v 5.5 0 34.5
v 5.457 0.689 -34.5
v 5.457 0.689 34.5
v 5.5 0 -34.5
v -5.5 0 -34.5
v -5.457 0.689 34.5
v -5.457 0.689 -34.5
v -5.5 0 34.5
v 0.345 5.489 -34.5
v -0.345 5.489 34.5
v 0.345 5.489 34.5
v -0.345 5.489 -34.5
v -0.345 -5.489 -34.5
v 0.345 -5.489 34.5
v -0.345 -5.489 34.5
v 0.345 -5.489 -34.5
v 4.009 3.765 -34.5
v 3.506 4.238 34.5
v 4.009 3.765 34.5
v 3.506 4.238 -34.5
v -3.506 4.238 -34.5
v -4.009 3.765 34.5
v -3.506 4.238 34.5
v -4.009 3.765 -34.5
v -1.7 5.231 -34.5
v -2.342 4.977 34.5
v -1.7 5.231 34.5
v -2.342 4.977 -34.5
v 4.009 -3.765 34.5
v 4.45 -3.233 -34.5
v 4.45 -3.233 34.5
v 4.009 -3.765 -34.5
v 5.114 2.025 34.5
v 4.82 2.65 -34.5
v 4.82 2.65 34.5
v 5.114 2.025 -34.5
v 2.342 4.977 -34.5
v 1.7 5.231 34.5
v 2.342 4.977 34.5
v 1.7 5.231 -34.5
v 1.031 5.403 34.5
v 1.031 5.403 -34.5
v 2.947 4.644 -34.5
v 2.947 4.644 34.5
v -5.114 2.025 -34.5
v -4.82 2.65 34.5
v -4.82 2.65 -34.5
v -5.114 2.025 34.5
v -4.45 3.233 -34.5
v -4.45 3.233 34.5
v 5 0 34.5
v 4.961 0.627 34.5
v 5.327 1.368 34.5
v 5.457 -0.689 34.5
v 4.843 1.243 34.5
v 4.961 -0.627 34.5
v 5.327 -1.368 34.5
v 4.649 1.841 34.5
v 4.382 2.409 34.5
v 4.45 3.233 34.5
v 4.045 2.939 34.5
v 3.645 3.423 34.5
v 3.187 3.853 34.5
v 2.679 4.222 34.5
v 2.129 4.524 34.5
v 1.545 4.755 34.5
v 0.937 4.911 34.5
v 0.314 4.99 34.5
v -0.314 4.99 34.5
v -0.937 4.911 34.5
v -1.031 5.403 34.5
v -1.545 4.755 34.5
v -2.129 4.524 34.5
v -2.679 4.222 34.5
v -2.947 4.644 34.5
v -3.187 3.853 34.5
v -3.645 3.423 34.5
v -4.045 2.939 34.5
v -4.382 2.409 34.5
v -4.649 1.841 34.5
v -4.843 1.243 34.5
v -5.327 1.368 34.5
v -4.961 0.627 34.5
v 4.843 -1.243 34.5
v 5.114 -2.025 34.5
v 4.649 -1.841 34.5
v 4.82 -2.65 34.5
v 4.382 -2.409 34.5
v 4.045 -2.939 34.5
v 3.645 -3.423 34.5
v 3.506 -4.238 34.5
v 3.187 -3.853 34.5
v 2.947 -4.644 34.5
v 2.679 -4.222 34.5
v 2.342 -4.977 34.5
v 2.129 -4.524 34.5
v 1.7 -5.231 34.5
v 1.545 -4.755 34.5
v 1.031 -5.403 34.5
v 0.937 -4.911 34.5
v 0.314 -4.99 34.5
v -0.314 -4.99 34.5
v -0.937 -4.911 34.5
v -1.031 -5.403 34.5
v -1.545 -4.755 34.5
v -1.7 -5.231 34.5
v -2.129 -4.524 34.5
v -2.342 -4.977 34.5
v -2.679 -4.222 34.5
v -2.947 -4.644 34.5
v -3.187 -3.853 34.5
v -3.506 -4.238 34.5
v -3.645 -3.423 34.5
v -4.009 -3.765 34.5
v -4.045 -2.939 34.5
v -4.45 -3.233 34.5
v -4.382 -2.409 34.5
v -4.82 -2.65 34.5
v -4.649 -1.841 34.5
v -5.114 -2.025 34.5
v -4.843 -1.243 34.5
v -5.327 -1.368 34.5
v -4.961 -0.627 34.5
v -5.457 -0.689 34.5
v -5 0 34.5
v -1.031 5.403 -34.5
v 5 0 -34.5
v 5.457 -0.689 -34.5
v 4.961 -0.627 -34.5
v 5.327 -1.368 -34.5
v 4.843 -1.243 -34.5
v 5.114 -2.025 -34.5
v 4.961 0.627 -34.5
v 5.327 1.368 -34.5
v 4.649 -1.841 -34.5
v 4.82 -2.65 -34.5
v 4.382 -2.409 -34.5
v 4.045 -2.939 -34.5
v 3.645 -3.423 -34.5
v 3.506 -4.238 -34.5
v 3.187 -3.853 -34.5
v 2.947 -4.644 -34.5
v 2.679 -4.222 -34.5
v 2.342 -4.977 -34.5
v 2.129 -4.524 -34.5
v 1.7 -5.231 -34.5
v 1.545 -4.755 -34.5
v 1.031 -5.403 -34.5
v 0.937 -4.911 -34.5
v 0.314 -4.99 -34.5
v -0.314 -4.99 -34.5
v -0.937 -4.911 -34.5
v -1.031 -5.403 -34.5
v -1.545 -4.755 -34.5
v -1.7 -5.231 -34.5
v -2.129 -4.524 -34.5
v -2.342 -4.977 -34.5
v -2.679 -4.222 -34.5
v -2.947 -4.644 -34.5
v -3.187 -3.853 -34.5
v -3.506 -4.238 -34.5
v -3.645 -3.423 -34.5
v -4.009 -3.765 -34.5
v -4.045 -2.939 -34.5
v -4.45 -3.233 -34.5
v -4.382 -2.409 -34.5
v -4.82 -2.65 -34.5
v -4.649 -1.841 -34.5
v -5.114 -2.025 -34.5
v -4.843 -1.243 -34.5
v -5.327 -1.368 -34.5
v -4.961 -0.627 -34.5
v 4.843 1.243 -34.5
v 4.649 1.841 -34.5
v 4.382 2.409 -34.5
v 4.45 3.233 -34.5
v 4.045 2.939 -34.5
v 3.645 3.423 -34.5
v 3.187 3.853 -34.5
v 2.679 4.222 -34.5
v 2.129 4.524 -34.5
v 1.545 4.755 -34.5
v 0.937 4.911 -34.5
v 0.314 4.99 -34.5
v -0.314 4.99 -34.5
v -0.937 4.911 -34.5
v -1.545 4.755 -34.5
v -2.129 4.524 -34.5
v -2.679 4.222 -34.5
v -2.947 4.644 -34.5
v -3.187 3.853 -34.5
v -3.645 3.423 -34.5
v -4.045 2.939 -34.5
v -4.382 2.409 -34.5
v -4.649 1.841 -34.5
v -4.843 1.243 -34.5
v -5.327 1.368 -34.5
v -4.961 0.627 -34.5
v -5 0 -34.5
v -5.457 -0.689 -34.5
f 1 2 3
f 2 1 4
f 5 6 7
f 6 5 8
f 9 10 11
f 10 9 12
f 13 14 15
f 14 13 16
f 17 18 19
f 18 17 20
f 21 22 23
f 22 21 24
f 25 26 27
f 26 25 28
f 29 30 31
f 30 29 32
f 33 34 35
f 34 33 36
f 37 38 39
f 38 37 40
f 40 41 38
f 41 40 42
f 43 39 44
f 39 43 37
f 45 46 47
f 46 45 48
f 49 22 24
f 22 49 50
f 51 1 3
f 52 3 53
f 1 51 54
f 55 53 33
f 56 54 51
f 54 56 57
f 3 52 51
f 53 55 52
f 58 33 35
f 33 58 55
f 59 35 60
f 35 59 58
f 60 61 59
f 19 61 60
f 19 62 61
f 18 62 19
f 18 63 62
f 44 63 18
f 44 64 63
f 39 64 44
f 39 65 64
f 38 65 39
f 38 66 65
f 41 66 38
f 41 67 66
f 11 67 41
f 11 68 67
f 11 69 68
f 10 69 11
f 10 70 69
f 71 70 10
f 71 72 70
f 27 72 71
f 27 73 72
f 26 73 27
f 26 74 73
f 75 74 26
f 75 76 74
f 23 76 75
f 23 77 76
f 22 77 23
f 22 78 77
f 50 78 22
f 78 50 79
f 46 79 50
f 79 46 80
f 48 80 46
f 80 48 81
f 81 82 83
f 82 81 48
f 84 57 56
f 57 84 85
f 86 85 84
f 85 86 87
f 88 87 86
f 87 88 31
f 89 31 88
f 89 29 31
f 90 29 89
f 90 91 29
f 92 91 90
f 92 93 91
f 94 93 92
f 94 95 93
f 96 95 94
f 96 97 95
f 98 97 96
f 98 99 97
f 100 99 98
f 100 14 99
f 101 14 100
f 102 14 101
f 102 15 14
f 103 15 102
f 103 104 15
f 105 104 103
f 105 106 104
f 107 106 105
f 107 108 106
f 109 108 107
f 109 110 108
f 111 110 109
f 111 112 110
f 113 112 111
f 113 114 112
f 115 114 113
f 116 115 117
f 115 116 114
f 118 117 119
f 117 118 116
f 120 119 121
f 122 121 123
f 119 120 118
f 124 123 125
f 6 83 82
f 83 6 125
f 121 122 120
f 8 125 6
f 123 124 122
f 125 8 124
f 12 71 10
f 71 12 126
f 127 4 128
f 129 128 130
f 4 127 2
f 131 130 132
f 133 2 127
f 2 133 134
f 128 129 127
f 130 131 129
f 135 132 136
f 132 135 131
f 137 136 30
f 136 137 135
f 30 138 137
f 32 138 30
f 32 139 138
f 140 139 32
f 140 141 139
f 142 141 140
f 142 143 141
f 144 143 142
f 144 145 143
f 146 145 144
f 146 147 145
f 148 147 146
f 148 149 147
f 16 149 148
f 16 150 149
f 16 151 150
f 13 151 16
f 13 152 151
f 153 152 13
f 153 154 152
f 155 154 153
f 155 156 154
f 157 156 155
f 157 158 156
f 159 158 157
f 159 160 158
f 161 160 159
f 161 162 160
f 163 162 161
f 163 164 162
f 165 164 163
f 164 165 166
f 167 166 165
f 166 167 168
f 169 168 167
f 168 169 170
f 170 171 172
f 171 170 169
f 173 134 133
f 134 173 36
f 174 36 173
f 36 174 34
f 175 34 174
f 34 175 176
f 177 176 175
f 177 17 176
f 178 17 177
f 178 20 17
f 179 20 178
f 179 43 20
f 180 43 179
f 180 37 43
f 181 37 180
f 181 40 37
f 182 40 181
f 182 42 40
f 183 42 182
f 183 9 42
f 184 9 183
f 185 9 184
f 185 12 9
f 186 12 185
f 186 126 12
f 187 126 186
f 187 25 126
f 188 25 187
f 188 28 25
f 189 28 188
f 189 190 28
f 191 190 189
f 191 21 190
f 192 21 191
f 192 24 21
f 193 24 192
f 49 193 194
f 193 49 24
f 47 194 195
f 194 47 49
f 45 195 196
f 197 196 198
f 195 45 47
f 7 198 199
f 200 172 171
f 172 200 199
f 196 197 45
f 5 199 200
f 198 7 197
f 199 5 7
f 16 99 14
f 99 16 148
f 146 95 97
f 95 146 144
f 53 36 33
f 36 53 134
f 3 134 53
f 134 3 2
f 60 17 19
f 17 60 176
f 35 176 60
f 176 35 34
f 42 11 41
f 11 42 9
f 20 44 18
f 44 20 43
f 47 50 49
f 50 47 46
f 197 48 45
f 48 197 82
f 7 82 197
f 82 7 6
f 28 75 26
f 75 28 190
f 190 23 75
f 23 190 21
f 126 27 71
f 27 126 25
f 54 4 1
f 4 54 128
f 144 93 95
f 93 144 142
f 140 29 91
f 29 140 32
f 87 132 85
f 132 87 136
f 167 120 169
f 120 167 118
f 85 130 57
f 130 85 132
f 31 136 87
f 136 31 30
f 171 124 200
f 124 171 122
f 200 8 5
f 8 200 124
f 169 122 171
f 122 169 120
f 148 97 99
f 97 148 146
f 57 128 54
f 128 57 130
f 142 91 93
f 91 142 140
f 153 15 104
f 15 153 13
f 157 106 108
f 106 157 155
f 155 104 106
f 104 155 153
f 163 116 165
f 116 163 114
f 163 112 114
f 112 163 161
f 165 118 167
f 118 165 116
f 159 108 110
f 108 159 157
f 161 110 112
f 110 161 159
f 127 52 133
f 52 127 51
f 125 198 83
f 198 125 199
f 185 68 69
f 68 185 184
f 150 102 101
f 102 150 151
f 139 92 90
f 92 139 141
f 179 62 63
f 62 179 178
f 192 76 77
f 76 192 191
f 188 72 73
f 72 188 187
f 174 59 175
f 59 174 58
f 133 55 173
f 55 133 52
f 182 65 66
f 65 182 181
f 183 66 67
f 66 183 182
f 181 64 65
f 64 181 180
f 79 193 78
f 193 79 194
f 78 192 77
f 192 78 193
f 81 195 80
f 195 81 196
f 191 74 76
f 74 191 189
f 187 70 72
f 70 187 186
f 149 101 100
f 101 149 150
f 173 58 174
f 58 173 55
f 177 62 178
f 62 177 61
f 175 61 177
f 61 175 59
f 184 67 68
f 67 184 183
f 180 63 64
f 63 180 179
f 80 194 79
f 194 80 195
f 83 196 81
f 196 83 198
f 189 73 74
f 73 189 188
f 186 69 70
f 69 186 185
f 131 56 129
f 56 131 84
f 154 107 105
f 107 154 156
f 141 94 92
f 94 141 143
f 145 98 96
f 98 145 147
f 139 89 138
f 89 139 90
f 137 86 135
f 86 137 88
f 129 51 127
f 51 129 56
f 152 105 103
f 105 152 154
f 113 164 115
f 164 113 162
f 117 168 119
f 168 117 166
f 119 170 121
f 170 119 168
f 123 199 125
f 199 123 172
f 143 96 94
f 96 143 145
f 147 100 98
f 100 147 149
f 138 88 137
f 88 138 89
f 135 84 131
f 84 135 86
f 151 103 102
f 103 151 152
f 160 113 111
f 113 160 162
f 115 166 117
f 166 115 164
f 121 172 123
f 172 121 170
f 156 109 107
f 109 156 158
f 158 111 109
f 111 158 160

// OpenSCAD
$fn = 50;


difference() {
	union() {
		translate(v = [0, 0, -34.5000000000]) {
			cylinder(h = 69, r = 5.5000000000);
		}
	}
	union() {
		translate(v = [0, 0, -100.0000000000]) {
			cylinder(h = 200, r = 5);
		}
	}
}
